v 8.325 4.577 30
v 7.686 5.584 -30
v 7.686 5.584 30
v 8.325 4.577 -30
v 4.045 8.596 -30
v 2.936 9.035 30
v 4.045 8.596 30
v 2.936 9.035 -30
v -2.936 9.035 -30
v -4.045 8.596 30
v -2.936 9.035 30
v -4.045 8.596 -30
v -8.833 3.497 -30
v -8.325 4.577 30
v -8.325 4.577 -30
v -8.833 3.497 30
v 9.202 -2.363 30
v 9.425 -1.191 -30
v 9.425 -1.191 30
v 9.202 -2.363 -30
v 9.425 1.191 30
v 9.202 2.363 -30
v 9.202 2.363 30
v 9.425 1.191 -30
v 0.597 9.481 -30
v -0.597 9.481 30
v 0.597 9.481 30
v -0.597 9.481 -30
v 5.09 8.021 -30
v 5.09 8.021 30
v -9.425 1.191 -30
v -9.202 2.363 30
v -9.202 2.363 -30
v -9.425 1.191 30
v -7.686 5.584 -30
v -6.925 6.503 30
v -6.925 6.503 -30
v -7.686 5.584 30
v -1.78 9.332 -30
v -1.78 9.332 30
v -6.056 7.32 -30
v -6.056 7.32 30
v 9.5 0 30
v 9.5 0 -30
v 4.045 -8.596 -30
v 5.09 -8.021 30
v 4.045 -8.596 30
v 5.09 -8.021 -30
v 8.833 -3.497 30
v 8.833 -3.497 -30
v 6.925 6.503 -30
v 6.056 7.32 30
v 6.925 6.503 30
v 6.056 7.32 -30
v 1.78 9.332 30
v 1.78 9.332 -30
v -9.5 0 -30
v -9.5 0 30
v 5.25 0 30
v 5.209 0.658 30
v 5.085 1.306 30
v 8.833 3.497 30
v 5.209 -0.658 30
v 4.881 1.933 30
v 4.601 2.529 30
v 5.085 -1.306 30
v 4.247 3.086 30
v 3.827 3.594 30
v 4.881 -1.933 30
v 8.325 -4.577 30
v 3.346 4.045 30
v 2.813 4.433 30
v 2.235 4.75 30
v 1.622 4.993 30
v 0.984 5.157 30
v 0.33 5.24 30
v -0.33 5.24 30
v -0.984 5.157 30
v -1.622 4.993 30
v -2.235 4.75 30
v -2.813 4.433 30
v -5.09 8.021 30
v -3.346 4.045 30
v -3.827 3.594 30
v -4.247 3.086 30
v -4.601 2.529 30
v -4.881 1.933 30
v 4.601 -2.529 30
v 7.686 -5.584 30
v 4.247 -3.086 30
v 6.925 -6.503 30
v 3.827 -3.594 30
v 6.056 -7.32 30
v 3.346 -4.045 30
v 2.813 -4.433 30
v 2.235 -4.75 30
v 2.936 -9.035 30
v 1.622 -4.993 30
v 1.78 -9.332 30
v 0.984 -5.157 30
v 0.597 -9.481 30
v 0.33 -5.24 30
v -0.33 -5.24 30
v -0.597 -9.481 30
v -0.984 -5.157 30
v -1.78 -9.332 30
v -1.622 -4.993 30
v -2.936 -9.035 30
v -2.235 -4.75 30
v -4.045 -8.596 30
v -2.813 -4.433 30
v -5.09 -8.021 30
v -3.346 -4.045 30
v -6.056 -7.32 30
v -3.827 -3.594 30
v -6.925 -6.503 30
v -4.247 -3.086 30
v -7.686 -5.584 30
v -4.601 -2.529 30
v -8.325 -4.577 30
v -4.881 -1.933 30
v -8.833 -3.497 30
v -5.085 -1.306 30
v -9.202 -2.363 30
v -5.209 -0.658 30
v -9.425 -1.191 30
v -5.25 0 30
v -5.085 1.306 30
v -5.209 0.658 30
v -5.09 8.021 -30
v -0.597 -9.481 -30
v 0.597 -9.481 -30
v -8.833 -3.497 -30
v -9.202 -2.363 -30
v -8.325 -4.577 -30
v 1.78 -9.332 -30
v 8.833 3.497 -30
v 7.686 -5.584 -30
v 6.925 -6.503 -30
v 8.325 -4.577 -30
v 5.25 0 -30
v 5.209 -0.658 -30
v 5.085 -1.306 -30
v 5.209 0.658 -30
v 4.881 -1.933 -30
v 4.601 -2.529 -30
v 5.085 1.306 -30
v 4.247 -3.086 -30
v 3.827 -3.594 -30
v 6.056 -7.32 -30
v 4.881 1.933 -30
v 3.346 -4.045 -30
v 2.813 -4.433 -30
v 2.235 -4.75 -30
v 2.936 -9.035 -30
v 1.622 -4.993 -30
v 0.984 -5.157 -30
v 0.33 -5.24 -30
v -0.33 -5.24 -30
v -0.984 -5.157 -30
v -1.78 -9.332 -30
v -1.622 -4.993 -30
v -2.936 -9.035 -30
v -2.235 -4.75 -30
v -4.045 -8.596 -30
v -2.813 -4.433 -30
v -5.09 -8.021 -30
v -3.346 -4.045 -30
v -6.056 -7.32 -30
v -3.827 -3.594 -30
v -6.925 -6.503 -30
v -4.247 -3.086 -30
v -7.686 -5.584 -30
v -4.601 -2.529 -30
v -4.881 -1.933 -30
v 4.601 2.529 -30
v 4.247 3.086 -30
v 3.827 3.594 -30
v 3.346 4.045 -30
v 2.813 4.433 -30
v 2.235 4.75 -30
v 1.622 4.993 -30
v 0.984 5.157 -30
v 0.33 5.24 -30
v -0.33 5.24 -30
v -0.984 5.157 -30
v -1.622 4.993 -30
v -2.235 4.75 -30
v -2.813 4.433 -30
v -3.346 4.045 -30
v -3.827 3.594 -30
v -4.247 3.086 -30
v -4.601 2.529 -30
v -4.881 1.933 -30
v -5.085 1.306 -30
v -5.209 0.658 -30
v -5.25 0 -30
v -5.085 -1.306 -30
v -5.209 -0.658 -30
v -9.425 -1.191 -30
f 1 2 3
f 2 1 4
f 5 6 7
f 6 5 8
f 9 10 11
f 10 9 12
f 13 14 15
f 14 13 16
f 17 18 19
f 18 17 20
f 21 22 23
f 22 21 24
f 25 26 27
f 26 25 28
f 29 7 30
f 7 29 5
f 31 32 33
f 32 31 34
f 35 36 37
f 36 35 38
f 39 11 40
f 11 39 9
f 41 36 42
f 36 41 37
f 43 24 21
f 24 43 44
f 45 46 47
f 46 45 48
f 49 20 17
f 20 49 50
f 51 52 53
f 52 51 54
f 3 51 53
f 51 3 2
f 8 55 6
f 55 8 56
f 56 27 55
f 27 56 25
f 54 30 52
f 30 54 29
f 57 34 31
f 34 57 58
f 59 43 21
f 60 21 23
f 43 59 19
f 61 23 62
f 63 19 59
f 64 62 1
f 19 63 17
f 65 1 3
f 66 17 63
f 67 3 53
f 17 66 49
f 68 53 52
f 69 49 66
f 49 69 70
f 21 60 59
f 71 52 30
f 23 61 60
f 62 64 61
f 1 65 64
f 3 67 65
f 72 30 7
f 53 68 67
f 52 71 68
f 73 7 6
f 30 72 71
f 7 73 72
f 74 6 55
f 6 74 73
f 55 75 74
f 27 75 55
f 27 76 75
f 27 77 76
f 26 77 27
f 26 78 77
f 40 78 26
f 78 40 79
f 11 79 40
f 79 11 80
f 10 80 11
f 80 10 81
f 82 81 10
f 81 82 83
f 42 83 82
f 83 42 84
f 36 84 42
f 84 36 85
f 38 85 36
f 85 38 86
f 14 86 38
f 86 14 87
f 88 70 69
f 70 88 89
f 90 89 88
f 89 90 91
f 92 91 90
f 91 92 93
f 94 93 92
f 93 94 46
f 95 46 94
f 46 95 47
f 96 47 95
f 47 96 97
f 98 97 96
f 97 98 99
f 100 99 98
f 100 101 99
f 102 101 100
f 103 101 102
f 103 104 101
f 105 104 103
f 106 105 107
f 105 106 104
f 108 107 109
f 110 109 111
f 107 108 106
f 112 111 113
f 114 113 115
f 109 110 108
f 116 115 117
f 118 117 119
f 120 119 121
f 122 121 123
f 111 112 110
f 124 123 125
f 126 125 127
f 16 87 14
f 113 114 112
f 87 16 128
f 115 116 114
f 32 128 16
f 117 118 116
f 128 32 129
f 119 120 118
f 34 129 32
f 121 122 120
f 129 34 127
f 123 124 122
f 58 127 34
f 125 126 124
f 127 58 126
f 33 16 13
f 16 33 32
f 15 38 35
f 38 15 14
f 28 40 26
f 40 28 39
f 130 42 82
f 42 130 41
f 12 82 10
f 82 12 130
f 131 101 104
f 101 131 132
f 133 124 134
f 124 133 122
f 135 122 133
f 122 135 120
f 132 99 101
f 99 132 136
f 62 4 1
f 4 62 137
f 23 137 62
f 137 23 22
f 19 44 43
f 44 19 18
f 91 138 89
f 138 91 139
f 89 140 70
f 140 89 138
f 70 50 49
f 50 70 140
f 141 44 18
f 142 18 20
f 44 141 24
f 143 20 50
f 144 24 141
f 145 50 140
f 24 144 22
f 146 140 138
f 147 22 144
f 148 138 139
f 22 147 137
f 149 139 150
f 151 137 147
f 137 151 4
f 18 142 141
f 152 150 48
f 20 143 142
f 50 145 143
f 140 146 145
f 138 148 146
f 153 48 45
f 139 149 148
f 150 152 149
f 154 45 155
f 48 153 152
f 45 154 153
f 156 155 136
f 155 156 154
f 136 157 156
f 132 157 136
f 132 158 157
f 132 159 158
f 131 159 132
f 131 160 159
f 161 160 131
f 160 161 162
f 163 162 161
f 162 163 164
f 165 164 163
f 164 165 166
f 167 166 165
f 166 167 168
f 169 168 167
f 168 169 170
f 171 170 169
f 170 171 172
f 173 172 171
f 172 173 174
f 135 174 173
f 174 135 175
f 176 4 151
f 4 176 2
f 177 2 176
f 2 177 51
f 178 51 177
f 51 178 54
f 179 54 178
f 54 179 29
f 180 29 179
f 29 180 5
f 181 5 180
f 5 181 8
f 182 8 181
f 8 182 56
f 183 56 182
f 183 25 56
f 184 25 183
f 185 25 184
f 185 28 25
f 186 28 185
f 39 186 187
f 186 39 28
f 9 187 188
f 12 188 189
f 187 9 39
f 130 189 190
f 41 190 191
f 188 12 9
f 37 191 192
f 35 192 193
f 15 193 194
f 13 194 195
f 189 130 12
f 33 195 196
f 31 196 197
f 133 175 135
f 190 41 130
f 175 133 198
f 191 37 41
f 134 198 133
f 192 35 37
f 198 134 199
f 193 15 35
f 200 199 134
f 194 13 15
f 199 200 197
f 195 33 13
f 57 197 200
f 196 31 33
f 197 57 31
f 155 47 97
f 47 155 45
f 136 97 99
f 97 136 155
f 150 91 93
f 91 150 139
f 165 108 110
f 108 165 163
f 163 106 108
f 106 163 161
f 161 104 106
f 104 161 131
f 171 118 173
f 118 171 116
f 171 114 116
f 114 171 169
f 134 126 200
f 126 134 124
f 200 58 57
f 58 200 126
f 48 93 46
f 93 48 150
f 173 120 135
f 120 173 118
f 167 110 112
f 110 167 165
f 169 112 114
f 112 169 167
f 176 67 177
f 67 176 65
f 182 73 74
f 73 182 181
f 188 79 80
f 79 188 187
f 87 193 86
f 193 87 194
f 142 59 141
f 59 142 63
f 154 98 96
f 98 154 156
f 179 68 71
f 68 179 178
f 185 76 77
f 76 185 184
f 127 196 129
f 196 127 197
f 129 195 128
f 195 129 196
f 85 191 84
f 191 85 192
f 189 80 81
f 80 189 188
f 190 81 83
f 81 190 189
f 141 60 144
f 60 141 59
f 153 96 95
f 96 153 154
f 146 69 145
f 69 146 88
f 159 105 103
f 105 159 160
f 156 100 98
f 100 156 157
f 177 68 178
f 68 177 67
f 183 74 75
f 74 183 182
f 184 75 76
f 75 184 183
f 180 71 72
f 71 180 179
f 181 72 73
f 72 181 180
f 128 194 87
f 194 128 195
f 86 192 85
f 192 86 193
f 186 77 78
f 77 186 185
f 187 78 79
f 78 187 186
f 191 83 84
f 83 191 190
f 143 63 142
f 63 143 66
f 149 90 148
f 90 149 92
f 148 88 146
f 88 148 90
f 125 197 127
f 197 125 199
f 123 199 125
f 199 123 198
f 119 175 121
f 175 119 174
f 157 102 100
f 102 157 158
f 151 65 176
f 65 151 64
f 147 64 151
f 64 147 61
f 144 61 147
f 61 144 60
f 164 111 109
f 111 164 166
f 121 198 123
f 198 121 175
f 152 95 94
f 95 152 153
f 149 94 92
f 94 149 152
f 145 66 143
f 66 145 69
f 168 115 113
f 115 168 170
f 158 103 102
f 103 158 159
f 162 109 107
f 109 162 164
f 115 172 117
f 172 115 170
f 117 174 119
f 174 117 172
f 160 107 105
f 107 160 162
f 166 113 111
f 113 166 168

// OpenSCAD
$fn = 50;


difference() {
	union() {
		translate(v = [0, 0, -30.0000000000]) {
			cylinder(h = 60, r = 9.5000000000);
		}
	}
	union() {
		translate(v = [0, 0, -100.0000000000]) {
			cylinder(h = 200, r = 5.2500000000);
		}
	}
}
